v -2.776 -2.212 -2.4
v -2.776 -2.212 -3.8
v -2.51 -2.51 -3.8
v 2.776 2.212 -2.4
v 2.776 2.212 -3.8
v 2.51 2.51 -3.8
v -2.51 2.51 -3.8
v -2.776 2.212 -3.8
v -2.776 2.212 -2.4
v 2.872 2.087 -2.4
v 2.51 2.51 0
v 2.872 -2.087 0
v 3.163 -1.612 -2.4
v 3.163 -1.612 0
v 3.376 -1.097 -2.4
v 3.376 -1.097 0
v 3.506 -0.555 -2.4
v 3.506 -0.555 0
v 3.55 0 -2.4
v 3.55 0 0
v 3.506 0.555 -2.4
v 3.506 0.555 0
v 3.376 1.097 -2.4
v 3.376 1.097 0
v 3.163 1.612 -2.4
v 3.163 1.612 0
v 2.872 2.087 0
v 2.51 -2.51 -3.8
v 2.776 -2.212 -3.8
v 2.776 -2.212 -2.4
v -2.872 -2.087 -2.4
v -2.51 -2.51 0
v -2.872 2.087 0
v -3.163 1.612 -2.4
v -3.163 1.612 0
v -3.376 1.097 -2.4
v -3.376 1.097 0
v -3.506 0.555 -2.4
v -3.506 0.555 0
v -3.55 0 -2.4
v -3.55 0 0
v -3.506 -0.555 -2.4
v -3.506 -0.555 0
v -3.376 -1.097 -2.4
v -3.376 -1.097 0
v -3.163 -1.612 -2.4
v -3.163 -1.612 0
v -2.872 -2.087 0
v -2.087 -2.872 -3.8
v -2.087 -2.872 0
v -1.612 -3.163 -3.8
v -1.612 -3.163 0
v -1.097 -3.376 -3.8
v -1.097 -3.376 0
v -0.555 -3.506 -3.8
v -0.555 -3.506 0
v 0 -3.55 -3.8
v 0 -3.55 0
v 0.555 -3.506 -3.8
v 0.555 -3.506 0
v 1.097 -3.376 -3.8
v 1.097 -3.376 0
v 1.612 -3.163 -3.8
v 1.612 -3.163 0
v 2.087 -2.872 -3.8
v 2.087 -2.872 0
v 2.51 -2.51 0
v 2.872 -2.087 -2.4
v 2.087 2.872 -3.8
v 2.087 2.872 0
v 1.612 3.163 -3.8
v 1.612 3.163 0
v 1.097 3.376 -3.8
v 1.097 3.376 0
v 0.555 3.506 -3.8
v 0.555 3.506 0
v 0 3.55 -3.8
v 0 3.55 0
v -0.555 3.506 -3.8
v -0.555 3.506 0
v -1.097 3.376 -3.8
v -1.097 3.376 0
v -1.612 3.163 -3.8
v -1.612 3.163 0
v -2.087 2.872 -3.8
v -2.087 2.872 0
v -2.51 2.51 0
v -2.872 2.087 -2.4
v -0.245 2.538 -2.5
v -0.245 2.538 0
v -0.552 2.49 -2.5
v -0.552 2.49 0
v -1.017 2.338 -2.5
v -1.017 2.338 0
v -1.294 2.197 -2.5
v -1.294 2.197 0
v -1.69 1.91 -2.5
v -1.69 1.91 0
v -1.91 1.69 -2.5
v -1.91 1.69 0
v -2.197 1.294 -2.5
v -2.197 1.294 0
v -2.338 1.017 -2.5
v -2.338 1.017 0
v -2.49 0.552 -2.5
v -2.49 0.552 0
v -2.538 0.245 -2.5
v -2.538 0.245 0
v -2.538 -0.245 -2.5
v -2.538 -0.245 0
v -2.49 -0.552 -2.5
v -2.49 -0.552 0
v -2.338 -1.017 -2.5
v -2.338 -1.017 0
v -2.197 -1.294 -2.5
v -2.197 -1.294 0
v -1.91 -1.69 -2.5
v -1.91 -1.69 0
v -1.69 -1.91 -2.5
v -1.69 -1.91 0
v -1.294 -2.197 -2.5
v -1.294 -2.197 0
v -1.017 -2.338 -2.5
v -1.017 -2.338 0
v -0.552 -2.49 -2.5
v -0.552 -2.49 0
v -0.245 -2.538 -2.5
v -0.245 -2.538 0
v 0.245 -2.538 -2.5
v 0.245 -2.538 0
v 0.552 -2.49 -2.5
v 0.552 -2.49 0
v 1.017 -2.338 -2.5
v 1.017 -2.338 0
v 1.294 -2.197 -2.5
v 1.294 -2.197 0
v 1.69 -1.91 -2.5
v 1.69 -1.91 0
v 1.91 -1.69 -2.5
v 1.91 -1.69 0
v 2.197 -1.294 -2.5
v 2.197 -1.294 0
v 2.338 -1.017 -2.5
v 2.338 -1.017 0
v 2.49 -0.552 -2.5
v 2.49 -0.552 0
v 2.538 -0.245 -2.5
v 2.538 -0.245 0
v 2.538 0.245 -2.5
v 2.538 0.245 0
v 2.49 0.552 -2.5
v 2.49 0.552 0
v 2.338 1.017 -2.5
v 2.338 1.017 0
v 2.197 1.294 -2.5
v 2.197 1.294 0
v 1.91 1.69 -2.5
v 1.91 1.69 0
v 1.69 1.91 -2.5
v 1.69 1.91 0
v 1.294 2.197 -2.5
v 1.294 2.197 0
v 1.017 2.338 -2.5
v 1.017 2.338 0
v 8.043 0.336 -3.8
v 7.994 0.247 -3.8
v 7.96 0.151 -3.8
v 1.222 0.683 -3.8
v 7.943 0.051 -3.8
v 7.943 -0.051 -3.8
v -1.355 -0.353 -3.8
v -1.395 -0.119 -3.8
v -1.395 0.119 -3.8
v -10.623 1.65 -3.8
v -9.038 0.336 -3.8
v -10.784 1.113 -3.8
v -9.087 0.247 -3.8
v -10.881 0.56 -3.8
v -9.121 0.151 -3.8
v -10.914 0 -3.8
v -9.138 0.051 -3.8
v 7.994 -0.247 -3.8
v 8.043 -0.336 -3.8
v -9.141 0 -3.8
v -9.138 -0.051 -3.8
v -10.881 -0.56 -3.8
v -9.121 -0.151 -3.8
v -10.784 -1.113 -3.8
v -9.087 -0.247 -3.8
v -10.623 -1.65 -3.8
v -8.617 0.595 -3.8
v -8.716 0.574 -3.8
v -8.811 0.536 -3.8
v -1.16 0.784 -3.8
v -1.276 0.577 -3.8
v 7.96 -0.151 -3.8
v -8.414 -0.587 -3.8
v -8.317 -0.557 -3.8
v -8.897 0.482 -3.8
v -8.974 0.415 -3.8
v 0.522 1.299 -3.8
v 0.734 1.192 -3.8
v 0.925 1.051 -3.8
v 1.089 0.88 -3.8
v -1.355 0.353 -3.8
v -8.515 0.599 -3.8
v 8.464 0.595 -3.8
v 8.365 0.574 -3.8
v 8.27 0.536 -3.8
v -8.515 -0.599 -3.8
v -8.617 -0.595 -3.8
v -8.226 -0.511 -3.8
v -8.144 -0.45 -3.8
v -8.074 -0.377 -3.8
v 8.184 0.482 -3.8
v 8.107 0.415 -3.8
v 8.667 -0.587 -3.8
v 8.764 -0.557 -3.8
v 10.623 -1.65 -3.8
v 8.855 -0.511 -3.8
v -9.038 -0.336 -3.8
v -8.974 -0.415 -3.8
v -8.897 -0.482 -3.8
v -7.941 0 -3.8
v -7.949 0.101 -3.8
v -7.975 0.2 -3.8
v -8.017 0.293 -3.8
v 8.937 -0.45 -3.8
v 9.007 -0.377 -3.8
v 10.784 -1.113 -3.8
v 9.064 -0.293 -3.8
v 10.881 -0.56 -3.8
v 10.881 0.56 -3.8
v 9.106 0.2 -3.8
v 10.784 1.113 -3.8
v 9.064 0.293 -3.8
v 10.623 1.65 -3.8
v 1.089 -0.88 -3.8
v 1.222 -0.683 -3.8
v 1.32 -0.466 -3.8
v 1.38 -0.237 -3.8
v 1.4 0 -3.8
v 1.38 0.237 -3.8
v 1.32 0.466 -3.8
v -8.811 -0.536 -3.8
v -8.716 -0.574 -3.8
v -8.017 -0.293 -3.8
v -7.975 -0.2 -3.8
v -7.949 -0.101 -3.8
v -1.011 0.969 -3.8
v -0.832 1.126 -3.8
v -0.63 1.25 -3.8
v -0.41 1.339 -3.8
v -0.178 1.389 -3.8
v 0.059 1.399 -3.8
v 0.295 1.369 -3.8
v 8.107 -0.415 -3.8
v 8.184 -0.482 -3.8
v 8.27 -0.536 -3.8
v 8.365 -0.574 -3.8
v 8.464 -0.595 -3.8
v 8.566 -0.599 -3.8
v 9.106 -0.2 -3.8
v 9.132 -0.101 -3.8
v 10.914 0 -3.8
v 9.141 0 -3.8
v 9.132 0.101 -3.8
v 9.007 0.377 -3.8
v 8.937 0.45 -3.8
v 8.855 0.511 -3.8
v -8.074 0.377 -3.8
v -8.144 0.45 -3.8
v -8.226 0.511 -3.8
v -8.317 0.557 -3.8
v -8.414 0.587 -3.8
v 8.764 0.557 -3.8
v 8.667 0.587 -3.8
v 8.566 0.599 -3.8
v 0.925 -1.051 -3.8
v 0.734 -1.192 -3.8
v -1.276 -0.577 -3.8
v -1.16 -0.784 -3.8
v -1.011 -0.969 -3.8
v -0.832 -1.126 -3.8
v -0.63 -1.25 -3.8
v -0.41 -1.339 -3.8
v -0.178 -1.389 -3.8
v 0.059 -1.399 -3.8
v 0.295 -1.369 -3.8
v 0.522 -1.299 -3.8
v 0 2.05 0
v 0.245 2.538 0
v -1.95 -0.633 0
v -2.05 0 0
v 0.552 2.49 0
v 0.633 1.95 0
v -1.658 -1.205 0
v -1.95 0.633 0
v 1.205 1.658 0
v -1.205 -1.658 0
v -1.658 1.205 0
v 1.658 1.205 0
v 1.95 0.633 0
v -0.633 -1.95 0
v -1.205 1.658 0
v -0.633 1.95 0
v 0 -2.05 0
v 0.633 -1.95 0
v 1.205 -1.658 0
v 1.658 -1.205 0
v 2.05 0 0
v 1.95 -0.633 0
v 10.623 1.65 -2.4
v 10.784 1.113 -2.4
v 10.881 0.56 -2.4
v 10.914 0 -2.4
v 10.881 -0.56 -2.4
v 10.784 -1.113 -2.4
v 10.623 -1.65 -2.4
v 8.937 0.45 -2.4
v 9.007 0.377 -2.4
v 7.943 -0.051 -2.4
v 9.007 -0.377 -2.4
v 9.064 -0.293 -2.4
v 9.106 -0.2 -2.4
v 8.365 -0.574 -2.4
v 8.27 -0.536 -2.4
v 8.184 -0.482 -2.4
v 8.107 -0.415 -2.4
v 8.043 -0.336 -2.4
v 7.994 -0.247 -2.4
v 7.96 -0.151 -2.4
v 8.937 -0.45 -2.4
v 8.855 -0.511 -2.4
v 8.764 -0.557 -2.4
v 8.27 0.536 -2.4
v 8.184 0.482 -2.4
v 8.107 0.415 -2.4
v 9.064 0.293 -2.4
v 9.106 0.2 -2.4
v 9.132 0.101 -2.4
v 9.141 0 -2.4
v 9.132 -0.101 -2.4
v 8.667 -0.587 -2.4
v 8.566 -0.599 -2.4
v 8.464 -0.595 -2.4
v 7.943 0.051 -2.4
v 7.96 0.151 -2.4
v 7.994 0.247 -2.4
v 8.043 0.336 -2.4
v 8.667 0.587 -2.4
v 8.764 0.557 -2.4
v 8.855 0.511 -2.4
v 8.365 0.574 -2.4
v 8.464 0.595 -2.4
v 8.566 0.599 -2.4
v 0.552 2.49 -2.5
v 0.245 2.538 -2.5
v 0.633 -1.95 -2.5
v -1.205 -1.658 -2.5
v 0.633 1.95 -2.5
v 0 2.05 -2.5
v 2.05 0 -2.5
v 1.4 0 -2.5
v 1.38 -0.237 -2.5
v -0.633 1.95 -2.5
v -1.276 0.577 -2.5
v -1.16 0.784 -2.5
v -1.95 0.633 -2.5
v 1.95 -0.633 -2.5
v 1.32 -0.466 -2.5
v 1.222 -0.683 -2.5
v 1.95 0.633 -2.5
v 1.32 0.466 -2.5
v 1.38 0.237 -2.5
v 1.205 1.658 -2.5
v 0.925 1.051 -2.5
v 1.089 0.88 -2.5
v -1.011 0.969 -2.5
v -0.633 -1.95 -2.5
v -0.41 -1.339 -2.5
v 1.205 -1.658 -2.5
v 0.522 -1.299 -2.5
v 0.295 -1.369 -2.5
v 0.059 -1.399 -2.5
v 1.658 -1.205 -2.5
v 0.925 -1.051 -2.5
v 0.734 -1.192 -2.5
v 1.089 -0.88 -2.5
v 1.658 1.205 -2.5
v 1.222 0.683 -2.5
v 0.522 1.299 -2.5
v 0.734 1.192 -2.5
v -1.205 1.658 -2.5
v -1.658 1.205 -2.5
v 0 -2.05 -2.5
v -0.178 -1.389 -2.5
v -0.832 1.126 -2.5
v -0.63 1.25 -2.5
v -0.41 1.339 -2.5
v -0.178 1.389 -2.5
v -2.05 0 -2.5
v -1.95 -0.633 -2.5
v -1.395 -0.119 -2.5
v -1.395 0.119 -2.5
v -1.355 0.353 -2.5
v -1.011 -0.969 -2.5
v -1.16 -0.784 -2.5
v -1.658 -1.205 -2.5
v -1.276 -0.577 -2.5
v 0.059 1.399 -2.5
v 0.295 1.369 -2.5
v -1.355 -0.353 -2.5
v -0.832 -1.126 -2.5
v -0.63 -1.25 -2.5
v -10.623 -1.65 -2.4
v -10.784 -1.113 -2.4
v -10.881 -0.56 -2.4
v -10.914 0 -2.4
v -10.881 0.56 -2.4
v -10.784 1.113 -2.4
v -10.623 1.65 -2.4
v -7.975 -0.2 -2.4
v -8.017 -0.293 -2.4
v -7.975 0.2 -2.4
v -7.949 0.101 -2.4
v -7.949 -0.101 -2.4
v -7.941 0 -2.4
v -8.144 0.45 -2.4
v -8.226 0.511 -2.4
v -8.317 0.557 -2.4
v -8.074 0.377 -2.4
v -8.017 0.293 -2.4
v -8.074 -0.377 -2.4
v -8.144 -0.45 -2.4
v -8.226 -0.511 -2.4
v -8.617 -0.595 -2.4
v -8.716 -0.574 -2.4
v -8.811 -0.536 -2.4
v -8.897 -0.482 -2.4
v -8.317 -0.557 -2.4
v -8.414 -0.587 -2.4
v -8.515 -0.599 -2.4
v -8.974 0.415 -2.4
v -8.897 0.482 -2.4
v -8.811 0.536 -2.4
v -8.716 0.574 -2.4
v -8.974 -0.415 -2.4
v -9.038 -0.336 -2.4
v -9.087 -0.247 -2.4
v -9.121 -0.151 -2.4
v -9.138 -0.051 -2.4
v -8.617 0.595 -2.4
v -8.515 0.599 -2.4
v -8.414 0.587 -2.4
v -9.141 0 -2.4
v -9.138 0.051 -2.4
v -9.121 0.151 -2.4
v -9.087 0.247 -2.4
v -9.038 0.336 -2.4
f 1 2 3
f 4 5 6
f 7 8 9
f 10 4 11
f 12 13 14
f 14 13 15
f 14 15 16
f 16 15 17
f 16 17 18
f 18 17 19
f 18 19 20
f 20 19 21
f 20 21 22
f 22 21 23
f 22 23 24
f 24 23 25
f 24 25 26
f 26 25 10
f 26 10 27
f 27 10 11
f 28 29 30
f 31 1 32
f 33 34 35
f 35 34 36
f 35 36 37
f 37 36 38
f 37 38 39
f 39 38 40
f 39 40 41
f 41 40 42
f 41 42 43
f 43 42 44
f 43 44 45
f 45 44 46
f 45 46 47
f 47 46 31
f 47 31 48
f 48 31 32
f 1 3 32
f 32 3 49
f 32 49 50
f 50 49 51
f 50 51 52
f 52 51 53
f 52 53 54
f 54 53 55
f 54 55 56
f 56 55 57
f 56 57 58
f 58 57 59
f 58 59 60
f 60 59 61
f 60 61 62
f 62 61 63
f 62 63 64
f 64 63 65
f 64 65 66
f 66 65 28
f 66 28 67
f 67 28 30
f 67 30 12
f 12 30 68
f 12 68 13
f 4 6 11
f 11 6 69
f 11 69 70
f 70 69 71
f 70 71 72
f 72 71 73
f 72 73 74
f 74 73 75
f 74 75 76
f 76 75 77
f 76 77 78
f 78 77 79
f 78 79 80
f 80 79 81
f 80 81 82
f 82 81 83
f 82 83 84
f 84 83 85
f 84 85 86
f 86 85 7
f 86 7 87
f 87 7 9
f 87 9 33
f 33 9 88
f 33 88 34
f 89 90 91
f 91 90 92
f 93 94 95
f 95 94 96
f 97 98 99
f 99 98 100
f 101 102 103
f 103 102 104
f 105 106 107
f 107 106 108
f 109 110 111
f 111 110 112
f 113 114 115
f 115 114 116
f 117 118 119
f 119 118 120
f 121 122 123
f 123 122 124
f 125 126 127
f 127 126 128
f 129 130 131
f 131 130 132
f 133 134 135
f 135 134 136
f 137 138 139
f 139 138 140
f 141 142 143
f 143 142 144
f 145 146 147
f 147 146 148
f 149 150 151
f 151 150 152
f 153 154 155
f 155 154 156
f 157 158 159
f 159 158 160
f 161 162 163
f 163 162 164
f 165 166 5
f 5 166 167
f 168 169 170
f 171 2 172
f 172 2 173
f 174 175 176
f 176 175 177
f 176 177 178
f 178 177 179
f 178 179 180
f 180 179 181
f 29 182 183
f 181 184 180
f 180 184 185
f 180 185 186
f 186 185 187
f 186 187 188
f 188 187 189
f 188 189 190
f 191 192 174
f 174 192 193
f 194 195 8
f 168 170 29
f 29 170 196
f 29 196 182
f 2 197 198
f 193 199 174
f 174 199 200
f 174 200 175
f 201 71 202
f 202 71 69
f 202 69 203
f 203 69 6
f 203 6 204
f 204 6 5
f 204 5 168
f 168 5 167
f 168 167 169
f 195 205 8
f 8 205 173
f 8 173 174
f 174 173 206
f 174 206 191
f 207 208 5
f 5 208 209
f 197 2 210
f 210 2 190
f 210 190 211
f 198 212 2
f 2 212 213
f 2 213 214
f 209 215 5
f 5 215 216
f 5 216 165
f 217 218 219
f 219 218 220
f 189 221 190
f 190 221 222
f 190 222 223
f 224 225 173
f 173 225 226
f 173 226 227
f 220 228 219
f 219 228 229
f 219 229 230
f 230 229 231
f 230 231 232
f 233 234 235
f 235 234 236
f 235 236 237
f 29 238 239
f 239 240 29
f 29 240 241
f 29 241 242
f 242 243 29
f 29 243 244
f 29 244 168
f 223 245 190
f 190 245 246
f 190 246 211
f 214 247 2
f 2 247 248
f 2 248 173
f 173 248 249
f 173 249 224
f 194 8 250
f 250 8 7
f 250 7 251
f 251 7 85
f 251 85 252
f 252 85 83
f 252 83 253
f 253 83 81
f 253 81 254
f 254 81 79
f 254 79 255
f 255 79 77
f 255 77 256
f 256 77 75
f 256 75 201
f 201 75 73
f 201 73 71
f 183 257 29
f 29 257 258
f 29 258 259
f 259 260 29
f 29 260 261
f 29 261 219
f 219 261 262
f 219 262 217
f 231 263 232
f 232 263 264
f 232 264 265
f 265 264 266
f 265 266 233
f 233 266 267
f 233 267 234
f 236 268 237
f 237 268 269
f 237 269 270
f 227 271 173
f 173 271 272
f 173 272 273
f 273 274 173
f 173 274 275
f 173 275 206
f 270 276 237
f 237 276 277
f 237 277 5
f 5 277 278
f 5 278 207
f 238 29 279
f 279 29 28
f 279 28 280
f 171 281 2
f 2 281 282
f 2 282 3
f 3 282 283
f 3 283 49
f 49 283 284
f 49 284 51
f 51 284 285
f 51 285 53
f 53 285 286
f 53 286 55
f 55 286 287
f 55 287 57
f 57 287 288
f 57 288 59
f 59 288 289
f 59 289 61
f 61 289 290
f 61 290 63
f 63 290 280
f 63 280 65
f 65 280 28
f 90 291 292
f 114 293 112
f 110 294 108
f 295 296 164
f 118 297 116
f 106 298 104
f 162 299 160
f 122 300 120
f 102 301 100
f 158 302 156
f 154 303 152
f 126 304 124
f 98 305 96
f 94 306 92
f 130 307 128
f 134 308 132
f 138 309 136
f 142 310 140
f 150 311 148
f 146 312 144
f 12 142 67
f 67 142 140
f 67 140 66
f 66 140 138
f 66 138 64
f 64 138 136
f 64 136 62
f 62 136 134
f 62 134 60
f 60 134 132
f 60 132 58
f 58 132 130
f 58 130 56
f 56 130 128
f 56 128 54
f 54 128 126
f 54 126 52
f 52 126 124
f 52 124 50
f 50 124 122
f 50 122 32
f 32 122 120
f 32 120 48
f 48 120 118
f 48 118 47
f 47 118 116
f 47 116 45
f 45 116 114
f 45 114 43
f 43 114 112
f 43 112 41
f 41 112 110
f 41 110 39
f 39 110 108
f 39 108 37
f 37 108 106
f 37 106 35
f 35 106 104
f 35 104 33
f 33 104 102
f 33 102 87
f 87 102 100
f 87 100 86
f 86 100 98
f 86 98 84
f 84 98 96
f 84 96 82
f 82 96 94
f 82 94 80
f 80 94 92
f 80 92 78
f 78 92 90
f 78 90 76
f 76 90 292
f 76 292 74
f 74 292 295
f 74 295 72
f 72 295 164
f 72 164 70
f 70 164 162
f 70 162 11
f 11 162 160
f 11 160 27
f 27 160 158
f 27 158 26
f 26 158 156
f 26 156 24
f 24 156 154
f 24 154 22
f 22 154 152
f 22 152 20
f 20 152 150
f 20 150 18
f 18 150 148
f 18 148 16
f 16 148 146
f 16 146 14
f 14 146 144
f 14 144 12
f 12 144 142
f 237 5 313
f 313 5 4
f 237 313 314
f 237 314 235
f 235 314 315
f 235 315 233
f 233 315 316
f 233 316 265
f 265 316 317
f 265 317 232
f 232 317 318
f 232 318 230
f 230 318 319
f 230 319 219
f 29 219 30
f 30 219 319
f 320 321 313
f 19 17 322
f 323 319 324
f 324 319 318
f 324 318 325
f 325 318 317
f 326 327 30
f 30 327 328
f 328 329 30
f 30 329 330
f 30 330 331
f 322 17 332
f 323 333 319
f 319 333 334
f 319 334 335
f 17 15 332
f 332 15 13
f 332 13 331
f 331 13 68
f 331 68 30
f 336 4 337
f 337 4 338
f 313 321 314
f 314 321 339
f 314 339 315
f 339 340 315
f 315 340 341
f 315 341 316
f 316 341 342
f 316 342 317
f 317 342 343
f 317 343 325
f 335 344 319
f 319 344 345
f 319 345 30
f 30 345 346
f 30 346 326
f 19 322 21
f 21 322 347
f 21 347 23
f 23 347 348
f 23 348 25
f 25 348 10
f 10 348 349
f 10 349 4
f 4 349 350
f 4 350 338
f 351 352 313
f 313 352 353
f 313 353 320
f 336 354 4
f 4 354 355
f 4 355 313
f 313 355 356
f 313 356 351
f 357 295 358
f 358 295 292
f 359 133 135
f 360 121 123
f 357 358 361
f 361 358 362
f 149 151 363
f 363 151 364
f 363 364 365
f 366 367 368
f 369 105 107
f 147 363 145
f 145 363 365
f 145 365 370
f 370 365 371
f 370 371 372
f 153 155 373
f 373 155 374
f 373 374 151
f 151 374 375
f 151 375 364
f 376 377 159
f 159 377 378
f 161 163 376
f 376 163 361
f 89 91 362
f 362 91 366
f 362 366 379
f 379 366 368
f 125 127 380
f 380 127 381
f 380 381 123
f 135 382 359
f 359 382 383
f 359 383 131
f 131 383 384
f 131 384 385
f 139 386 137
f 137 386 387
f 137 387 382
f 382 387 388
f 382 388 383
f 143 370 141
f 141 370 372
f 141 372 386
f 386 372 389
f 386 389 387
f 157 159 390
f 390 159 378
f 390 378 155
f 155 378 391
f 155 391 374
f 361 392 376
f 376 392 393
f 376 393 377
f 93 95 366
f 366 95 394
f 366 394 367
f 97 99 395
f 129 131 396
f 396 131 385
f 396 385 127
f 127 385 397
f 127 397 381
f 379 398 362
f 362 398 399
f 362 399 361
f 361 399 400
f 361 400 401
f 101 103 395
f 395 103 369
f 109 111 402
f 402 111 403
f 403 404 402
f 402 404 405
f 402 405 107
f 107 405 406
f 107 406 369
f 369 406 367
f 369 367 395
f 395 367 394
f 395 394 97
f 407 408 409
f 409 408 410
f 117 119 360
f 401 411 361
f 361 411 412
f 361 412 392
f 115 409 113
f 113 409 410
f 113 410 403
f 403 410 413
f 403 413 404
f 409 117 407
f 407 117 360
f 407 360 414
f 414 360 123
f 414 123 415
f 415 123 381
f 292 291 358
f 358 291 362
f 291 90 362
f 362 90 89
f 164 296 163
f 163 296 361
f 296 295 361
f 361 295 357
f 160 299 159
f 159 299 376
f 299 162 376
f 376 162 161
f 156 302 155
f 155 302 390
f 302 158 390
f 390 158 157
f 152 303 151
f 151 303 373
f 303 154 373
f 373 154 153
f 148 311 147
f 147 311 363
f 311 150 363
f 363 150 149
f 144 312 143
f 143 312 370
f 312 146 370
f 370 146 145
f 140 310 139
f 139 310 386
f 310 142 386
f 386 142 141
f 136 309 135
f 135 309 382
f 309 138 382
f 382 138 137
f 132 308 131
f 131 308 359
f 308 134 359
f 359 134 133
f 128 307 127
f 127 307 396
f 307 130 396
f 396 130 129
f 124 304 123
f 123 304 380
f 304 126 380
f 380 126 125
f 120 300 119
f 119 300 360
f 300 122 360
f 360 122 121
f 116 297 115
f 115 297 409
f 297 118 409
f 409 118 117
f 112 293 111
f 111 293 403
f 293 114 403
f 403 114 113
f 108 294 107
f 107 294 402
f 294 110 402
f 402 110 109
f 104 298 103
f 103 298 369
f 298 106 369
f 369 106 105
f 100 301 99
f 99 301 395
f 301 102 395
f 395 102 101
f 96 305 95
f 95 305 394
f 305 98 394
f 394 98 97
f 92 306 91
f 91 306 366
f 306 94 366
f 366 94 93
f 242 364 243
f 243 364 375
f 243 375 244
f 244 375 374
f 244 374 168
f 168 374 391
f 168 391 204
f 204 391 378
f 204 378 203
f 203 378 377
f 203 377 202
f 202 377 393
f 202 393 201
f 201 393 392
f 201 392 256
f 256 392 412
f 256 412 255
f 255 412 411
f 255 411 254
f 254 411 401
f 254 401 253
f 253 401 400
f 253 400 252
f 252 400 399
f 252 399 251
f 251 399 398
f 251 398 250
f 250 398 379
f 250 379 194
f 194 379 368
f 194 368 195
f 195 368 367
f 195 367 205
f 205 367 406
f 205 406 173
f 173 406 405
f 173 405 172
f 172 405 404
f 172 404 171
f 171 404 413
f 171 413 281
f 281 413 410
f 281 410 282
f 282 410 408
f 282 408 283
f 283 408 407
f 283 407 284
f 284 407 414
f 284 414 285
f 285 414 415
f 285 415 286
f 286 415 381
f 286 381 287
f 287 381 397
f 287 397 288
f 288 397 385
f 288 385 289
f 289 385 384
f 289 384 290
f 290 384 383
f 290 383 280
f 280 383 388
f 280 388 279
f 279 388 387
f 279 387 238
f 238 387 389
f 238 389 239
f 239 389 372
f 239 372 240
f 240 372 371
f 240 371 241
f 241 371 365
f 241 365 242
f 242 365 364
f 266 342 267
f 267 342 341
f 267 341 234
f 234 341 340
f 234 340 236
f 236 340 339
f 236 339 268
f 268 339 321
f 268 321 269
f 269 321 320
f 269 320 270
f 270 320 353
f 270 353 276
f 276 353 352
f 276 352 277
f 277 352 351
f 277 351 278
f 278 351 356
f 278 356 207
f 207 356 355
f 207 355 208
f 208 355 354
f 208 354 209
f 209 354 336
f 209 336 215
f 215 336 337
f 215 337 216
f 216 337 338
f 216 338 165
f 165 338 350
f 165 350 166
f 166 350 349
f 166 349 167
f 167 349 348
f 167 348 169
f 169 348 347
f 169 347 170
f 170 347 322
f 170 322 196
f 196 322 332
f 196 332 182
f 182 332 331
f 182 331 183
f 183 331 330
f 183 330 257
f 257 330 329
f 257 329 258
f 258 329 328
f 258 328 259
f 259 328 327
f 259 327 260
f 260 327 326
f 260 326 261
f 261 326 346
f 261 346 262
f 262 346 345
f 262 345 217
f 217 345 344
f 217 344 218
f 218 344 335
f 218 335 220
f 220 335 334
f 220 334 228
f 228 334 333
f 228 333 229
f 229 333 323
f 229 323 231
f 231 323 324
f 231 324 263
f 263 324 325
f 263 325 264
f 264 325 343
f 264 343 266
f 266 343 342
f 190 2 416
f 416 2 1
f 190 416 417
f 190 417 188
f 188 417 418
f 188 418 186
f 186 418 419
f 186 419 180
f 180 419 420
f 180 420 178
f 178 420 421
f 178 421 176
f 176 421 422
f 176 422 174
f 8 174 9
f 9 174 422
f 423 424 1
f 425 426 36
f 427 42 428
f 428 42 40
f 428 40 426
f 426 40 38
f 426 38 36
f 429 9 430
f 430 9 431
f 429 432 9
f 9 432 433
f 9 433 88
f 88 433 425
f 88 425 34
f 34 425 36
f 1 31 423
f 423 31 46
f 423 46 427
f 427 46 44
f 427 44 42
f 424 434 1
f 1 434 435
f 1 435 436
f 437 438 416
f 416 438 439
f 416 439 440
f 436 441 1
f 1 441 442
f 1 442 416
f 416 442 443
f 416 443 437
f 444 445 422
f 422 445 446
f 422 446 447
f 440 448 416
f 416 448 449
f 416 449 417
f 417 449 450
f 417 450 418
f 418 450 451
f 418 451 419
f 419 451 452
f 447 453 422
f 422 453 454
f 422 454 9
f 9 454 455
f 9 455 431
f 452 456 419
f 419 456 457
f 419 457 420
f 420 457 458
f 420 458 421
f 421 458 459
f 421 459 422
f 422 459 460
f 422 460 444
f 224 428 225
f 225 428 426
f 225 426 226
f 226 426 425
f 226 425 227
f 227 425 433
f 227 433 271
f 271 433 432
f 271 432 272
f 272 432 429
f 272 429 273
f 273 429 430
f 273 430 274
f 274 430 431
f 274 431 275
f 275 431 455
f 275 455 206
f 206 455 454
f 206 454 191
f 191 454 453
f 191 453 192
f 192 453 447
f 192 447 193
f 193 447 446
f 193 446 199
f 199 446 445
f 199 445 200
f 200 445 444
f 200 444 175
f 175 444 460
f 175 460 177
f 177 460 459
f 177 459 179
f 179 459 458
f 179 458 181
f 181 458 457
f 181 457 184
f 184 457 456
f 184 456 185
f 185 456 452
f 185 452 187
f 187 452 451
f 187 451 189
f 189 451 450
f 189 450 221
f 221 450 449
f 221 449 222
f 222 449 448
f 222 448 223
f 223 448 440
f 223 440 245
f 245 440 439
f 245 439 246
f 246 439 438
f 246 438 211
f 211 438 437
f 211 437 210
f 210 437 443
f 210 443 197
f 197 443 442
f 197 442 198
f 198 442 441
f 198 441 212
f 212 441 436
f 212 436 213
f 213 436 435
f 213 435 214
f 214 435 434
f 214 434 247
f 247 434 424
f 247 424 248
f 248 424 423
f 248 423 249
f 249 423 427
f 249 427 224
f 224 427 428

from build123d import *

# Parameters (mm, degrees)
SKETCH2_R           = 3.55
BOSS_EXTRUDE1_DEPTH = 3.8
BOSS_EXTRUDE2_DEPTH = 1.4
SKETCH5_R           = 2.549999919
CUT_EXTRUDE1_DEPTH  = 2.5
BOSS_EXTRUDE3_DEPTH = 2.5
SKETCH6_R           = 1.4
CUT_EXTRUDE2_DEPTH  = 12.745554295
SKETCH7_R           = 0.6
CUT_EXTRUDE3_DEPTH  = 12.724676785


with BuildPart() as part:
    # Sketch2 → Boss-Extrude1 (new body)
    with BuildSketch(Plane.XY):
        Circle(SKETCH2_R)
    extrude(amount=-BOSS_EXTRUDE1_DEPTH)

    # Sketch4 → Boss-Extrude2 (add)
    with BuildSketch(Plane.XY.offset(-2.4)):
        with BuildLine():
            Line((2.776387215, 2.212277889), (10.622617722, 1.649999976))
            ThreePointArc((10.622617722, 1.649999976), (10.913548722, 0), (10.622617722, -1.649999976))
            Line((10.622617722, -1.649999976), (2.776387215, -2.212277889))
            ThreePointArc((2.776387215, -2.212277889), (3.549999952, 0), (2.776387215, 2.212277889))
        make_face()
    boss_extrude2 = extrude(amount=-BOSS_EXTRUDE2_DEPTH)

    # Sketch5 → Cut-Extrude1 (cut)
    with BuildSketch(Plane.XY):
        Circle(SKETCH5_R)
    extrude(amount=-CUT_EXTRUDE1_DEPTH, mode=Mode.SUBTRACT)

    # Sketch3 → Boss-Extrude3 (add)
    with BuildSketch(Plane.XY):
        with BuildLine():
            Line((-0.244697916, 2.538232164), (0, 2.049999952))
            Line((0, 2.049999952), (0.244697916, 2.538232164))
            ThreePointArc((0.244697916, 2.538232164), (0, 2.549999919), (-0.244697916, 2.538232164))
        make_face()
        with BuildLine():
            Line((0.551635326, 2.489618054), (0.633484824, 1.949665813))
            Line((0.633484824, 1.949665813), (1.017078422, 2.338386424))
            ThreePointArc((1.017078422, 2.338386424), (0.787993311, 2.42519404), (0.551635326, 2.489618054))
        make_face()
        with BuildLine():
            Line((1.29397066, 2.197302783), (1.204959739, 1.6584848))
            Line((1.204959739, 1.6584848), (1.689900206, 1.90964313))
            ThreePointArc((1.689900206, 1.90964313), (1.498852346, 2.06299327), (1.29397066, 2.197302783))
        make_face()
        with BuildLine():
            Line((1.90964313, 1.689900206), (1.6584848, 1.204959739))
            Line((1.6584848, 1.204959739), (2.197302783, 1.29397066))
            ThreePointArc((2.197302783, 1.29397066), (2.06299327, 1.498852346), (1.90964313, 1.689900206))
        make_face()
        with BuildLine():
            Line((2.338386424, 1.017078422), (1.949665813, 0.633484824))
            Line((1.949665813, 0.633484824), (2.489618054, 0.551635326))
            ThreePointArc((2.489618054, 0.551635326), (2.42519404, 0.787993311), (2.338386424, 1.017078422))
        make_face()
        with BuildLine():
            Line((2.538232164, 0.244697916), (2.049999952, 0))
            Line((2.049999952, 0), (2.538232164, -0.244697916))
            ThreePointArc((2.538232164, -0.244697916), (2.549999919, 0), (2.538232164, 0.244697916))
        make_face()
        with BuildLine():
            Line((2.489618054, -0.551635326), (1.949665813, -0.633484824))
            Line((1.949665813, -0.633484824), (2.338386424, -1.017078422))
            ThreePointArc((2.338386424, -1.017078422), (2.42519404, -0.787993311), (2.489618054, -0.551635326))
        make_face()
        with BuildLine():
            Line((2.197302783, -1.29397066), (1.6584848, -1.204959739))
            Line((1.6584848, -1.204959739), (1.90964313, -1.689900206))
            ThreePointArc((1.90964313, -1.689900206), (2.06299327, -1.498852346), (2.197302783, -1.29397066))
        make_face()
        with BuildLine():
            Line((1.689900206, -1.90964313), (1.204959739, -1.6584848))
            Line((1.204959739, -1.6584848), (1.29397066, -2.197302783))
            ThreePointArc((1.29397066, -2.197302783), (1.498852346, -2.06299327), (1.689900206, -1.90964313))
        make_face()
        with BuildLine():
            Line((1.017078422, -2.338386424), (0.633484824, -1.949665813))
            Line((0.633484824, -1.949665813), (0.551635326, -2.489618054))
            ThreePointArc((0.551635326, -2.489618054), (0.787993311, -2.42519404), (1.017078422, -2.338386424))
        make_face()
        with BuildLine():
            Line((0.244697916, -2.538232164), (0, -2.049999952))
            Line((0, -2.049999952), (-0.244697916, -2.538232164))
            ThreePointArc((-0.244697916, -2.538232164), (0, -2.549999919), (0.244697916, -2.538232164))
        make_face()
        with BuildLine():
            Line((-0.551635326, -2.489618054), (-0.633484824, -1.949665813))
            Line((-0.633484824, -1.949665813), (-1.017078422, -2.338386424))
            ThreePointArc((-1.017078422, -2.338386424), (-0.787993311, -2.42519404), (-0.551635326, -2.489618054))
        make_face()
        with BuildLine():
            Line((-1.29397066, -2.197302783), (-1.204959739, -1.6584848))
            Line((-1.204959739, -1.6584848), (-1.689900206, -1.90964313))
            ThreePointArc((-1.689900206, -1.90964313), (-1.498852346, -2.06299327), (-1.29397066, -2.197302783))
        make_face()
        with BuildLine():
            Line((-1.90964313, -1.689900206), (-1.6584848, -1.204959739))
            Line((-1.6584848, -1.204959739), (-2.197302783, -1.29397066))
            ThreePointArc((-2.197302783, -1.29397066), (-2.06299327, -1.498852346), (-1.90964313, -1.689900206))
        make_face()
        with BuildLine():
            Line((-2.338386424, -1.017078422), (-1.949665813, -0.633484824))
            Line((-1.949665813, -0.633484824), (-2.489618054, -0.551635326))
            ThreePointArc((-2.489618054, -0.551635326), (-2.42519404, -0.787993311), (-2.338386424, -1.017078422))
        make_face()
        with BuildLine():
            Line((-2.538232164, -0.244697916), (-2.049999952, 0))
            Line((-2.049999952, 0), (-2.538232164, 0.244697916))
            ThreePointArc((-2.538232164, 0.244697916), (-2.549999919, 0), (-2.538232164, -0.244697916))
        make_face()
        with BuildLine():
            Line((-2.489618054, 0.551635326), (-1.949665813, 0.633484824))
            Line((-1.949665813, 0.633484824), (-2.338386424, 1.017078422))
            ThreePointArc((-2.338386424, 1.017078422), (-2.42519404, 0.787993311), (-2.489618054, 0.551635326))
        make_face()
        with BuildLine():
            Line((-2.197302783, 1.29397066), (-1.6584848, 1.204959739))
            Line((-1.6584848, 1.204959739), (-1.90964313, 1.689900206))
            ThreePointArc((-1.90964313, 1.689900206), (-2.06299327, 1.498852346), (-2.197302783, 1.29397066))
        make_face()
        with BuildLine():
            Line((-1.689900206, 1.90964313), (-1.204959739, 1.6584848))
            Line((-1.204959739, 1.6584848), (-1.29397066, 2.197302783))
            ThreePointArc((-1.29397066, 2.197302783), (-1.498852346, 2.06299327), (-1.689900206, 1.90964313))
        make_face()
        with BuildLine():
            Line((-1.017078422, 2.338386424), (-0.633484824, 1.949665813))
            Line((-0.633484824, 1.949665813), (-0.551635326, 2.489618054))
            ThreePointArc((-0.551635326, 2.489618054), (-0.787993311, 2.42519404), (-1.017078422, 2.338386424))
        make_face()
    extrude(amount=-BOSS_EXTRUDE3_DEPTH)

    # Sketch6 → Cut-Extrude2 (cut, through all)
    with BuildSketch(Plane.XY.offset(-2.5)):
        Circle(SKETCH6_R)
    extrude(amount=-CUT_EXTRUDE2_DEPTH, mode=Mode.SUBTRACT)

    # Sketch7 → Cut-Extrude3 (cut, through all)
    with BuildSketch(Plane.XY.offset(-2.4)):
        with Locations((8.5405208, 0)):
            Circle(SKETCH7_R)
    cut_extrude3 = extrude(amount=-CUT_EXTRUDE3_DEPTH, mode=Mode.SUBTRACT)

    # Mirror1: Boss-Extrude2 across plane
    add(boss_extrude2.mirror(Plane(origin=(0, 0, 0), x_dir=(0, 0, 1), z_dir=(1, 0, 0))))

    # Mirror2: Cut-Extrude3 across plane
    add(cut_extrude3.mirror(Plane(origin=(0, 0, 0), x_dir=(0, 0, 1), z_dir=(1, 0, 0))), mode=Mode.SUBTRACT)


solid = part.part
